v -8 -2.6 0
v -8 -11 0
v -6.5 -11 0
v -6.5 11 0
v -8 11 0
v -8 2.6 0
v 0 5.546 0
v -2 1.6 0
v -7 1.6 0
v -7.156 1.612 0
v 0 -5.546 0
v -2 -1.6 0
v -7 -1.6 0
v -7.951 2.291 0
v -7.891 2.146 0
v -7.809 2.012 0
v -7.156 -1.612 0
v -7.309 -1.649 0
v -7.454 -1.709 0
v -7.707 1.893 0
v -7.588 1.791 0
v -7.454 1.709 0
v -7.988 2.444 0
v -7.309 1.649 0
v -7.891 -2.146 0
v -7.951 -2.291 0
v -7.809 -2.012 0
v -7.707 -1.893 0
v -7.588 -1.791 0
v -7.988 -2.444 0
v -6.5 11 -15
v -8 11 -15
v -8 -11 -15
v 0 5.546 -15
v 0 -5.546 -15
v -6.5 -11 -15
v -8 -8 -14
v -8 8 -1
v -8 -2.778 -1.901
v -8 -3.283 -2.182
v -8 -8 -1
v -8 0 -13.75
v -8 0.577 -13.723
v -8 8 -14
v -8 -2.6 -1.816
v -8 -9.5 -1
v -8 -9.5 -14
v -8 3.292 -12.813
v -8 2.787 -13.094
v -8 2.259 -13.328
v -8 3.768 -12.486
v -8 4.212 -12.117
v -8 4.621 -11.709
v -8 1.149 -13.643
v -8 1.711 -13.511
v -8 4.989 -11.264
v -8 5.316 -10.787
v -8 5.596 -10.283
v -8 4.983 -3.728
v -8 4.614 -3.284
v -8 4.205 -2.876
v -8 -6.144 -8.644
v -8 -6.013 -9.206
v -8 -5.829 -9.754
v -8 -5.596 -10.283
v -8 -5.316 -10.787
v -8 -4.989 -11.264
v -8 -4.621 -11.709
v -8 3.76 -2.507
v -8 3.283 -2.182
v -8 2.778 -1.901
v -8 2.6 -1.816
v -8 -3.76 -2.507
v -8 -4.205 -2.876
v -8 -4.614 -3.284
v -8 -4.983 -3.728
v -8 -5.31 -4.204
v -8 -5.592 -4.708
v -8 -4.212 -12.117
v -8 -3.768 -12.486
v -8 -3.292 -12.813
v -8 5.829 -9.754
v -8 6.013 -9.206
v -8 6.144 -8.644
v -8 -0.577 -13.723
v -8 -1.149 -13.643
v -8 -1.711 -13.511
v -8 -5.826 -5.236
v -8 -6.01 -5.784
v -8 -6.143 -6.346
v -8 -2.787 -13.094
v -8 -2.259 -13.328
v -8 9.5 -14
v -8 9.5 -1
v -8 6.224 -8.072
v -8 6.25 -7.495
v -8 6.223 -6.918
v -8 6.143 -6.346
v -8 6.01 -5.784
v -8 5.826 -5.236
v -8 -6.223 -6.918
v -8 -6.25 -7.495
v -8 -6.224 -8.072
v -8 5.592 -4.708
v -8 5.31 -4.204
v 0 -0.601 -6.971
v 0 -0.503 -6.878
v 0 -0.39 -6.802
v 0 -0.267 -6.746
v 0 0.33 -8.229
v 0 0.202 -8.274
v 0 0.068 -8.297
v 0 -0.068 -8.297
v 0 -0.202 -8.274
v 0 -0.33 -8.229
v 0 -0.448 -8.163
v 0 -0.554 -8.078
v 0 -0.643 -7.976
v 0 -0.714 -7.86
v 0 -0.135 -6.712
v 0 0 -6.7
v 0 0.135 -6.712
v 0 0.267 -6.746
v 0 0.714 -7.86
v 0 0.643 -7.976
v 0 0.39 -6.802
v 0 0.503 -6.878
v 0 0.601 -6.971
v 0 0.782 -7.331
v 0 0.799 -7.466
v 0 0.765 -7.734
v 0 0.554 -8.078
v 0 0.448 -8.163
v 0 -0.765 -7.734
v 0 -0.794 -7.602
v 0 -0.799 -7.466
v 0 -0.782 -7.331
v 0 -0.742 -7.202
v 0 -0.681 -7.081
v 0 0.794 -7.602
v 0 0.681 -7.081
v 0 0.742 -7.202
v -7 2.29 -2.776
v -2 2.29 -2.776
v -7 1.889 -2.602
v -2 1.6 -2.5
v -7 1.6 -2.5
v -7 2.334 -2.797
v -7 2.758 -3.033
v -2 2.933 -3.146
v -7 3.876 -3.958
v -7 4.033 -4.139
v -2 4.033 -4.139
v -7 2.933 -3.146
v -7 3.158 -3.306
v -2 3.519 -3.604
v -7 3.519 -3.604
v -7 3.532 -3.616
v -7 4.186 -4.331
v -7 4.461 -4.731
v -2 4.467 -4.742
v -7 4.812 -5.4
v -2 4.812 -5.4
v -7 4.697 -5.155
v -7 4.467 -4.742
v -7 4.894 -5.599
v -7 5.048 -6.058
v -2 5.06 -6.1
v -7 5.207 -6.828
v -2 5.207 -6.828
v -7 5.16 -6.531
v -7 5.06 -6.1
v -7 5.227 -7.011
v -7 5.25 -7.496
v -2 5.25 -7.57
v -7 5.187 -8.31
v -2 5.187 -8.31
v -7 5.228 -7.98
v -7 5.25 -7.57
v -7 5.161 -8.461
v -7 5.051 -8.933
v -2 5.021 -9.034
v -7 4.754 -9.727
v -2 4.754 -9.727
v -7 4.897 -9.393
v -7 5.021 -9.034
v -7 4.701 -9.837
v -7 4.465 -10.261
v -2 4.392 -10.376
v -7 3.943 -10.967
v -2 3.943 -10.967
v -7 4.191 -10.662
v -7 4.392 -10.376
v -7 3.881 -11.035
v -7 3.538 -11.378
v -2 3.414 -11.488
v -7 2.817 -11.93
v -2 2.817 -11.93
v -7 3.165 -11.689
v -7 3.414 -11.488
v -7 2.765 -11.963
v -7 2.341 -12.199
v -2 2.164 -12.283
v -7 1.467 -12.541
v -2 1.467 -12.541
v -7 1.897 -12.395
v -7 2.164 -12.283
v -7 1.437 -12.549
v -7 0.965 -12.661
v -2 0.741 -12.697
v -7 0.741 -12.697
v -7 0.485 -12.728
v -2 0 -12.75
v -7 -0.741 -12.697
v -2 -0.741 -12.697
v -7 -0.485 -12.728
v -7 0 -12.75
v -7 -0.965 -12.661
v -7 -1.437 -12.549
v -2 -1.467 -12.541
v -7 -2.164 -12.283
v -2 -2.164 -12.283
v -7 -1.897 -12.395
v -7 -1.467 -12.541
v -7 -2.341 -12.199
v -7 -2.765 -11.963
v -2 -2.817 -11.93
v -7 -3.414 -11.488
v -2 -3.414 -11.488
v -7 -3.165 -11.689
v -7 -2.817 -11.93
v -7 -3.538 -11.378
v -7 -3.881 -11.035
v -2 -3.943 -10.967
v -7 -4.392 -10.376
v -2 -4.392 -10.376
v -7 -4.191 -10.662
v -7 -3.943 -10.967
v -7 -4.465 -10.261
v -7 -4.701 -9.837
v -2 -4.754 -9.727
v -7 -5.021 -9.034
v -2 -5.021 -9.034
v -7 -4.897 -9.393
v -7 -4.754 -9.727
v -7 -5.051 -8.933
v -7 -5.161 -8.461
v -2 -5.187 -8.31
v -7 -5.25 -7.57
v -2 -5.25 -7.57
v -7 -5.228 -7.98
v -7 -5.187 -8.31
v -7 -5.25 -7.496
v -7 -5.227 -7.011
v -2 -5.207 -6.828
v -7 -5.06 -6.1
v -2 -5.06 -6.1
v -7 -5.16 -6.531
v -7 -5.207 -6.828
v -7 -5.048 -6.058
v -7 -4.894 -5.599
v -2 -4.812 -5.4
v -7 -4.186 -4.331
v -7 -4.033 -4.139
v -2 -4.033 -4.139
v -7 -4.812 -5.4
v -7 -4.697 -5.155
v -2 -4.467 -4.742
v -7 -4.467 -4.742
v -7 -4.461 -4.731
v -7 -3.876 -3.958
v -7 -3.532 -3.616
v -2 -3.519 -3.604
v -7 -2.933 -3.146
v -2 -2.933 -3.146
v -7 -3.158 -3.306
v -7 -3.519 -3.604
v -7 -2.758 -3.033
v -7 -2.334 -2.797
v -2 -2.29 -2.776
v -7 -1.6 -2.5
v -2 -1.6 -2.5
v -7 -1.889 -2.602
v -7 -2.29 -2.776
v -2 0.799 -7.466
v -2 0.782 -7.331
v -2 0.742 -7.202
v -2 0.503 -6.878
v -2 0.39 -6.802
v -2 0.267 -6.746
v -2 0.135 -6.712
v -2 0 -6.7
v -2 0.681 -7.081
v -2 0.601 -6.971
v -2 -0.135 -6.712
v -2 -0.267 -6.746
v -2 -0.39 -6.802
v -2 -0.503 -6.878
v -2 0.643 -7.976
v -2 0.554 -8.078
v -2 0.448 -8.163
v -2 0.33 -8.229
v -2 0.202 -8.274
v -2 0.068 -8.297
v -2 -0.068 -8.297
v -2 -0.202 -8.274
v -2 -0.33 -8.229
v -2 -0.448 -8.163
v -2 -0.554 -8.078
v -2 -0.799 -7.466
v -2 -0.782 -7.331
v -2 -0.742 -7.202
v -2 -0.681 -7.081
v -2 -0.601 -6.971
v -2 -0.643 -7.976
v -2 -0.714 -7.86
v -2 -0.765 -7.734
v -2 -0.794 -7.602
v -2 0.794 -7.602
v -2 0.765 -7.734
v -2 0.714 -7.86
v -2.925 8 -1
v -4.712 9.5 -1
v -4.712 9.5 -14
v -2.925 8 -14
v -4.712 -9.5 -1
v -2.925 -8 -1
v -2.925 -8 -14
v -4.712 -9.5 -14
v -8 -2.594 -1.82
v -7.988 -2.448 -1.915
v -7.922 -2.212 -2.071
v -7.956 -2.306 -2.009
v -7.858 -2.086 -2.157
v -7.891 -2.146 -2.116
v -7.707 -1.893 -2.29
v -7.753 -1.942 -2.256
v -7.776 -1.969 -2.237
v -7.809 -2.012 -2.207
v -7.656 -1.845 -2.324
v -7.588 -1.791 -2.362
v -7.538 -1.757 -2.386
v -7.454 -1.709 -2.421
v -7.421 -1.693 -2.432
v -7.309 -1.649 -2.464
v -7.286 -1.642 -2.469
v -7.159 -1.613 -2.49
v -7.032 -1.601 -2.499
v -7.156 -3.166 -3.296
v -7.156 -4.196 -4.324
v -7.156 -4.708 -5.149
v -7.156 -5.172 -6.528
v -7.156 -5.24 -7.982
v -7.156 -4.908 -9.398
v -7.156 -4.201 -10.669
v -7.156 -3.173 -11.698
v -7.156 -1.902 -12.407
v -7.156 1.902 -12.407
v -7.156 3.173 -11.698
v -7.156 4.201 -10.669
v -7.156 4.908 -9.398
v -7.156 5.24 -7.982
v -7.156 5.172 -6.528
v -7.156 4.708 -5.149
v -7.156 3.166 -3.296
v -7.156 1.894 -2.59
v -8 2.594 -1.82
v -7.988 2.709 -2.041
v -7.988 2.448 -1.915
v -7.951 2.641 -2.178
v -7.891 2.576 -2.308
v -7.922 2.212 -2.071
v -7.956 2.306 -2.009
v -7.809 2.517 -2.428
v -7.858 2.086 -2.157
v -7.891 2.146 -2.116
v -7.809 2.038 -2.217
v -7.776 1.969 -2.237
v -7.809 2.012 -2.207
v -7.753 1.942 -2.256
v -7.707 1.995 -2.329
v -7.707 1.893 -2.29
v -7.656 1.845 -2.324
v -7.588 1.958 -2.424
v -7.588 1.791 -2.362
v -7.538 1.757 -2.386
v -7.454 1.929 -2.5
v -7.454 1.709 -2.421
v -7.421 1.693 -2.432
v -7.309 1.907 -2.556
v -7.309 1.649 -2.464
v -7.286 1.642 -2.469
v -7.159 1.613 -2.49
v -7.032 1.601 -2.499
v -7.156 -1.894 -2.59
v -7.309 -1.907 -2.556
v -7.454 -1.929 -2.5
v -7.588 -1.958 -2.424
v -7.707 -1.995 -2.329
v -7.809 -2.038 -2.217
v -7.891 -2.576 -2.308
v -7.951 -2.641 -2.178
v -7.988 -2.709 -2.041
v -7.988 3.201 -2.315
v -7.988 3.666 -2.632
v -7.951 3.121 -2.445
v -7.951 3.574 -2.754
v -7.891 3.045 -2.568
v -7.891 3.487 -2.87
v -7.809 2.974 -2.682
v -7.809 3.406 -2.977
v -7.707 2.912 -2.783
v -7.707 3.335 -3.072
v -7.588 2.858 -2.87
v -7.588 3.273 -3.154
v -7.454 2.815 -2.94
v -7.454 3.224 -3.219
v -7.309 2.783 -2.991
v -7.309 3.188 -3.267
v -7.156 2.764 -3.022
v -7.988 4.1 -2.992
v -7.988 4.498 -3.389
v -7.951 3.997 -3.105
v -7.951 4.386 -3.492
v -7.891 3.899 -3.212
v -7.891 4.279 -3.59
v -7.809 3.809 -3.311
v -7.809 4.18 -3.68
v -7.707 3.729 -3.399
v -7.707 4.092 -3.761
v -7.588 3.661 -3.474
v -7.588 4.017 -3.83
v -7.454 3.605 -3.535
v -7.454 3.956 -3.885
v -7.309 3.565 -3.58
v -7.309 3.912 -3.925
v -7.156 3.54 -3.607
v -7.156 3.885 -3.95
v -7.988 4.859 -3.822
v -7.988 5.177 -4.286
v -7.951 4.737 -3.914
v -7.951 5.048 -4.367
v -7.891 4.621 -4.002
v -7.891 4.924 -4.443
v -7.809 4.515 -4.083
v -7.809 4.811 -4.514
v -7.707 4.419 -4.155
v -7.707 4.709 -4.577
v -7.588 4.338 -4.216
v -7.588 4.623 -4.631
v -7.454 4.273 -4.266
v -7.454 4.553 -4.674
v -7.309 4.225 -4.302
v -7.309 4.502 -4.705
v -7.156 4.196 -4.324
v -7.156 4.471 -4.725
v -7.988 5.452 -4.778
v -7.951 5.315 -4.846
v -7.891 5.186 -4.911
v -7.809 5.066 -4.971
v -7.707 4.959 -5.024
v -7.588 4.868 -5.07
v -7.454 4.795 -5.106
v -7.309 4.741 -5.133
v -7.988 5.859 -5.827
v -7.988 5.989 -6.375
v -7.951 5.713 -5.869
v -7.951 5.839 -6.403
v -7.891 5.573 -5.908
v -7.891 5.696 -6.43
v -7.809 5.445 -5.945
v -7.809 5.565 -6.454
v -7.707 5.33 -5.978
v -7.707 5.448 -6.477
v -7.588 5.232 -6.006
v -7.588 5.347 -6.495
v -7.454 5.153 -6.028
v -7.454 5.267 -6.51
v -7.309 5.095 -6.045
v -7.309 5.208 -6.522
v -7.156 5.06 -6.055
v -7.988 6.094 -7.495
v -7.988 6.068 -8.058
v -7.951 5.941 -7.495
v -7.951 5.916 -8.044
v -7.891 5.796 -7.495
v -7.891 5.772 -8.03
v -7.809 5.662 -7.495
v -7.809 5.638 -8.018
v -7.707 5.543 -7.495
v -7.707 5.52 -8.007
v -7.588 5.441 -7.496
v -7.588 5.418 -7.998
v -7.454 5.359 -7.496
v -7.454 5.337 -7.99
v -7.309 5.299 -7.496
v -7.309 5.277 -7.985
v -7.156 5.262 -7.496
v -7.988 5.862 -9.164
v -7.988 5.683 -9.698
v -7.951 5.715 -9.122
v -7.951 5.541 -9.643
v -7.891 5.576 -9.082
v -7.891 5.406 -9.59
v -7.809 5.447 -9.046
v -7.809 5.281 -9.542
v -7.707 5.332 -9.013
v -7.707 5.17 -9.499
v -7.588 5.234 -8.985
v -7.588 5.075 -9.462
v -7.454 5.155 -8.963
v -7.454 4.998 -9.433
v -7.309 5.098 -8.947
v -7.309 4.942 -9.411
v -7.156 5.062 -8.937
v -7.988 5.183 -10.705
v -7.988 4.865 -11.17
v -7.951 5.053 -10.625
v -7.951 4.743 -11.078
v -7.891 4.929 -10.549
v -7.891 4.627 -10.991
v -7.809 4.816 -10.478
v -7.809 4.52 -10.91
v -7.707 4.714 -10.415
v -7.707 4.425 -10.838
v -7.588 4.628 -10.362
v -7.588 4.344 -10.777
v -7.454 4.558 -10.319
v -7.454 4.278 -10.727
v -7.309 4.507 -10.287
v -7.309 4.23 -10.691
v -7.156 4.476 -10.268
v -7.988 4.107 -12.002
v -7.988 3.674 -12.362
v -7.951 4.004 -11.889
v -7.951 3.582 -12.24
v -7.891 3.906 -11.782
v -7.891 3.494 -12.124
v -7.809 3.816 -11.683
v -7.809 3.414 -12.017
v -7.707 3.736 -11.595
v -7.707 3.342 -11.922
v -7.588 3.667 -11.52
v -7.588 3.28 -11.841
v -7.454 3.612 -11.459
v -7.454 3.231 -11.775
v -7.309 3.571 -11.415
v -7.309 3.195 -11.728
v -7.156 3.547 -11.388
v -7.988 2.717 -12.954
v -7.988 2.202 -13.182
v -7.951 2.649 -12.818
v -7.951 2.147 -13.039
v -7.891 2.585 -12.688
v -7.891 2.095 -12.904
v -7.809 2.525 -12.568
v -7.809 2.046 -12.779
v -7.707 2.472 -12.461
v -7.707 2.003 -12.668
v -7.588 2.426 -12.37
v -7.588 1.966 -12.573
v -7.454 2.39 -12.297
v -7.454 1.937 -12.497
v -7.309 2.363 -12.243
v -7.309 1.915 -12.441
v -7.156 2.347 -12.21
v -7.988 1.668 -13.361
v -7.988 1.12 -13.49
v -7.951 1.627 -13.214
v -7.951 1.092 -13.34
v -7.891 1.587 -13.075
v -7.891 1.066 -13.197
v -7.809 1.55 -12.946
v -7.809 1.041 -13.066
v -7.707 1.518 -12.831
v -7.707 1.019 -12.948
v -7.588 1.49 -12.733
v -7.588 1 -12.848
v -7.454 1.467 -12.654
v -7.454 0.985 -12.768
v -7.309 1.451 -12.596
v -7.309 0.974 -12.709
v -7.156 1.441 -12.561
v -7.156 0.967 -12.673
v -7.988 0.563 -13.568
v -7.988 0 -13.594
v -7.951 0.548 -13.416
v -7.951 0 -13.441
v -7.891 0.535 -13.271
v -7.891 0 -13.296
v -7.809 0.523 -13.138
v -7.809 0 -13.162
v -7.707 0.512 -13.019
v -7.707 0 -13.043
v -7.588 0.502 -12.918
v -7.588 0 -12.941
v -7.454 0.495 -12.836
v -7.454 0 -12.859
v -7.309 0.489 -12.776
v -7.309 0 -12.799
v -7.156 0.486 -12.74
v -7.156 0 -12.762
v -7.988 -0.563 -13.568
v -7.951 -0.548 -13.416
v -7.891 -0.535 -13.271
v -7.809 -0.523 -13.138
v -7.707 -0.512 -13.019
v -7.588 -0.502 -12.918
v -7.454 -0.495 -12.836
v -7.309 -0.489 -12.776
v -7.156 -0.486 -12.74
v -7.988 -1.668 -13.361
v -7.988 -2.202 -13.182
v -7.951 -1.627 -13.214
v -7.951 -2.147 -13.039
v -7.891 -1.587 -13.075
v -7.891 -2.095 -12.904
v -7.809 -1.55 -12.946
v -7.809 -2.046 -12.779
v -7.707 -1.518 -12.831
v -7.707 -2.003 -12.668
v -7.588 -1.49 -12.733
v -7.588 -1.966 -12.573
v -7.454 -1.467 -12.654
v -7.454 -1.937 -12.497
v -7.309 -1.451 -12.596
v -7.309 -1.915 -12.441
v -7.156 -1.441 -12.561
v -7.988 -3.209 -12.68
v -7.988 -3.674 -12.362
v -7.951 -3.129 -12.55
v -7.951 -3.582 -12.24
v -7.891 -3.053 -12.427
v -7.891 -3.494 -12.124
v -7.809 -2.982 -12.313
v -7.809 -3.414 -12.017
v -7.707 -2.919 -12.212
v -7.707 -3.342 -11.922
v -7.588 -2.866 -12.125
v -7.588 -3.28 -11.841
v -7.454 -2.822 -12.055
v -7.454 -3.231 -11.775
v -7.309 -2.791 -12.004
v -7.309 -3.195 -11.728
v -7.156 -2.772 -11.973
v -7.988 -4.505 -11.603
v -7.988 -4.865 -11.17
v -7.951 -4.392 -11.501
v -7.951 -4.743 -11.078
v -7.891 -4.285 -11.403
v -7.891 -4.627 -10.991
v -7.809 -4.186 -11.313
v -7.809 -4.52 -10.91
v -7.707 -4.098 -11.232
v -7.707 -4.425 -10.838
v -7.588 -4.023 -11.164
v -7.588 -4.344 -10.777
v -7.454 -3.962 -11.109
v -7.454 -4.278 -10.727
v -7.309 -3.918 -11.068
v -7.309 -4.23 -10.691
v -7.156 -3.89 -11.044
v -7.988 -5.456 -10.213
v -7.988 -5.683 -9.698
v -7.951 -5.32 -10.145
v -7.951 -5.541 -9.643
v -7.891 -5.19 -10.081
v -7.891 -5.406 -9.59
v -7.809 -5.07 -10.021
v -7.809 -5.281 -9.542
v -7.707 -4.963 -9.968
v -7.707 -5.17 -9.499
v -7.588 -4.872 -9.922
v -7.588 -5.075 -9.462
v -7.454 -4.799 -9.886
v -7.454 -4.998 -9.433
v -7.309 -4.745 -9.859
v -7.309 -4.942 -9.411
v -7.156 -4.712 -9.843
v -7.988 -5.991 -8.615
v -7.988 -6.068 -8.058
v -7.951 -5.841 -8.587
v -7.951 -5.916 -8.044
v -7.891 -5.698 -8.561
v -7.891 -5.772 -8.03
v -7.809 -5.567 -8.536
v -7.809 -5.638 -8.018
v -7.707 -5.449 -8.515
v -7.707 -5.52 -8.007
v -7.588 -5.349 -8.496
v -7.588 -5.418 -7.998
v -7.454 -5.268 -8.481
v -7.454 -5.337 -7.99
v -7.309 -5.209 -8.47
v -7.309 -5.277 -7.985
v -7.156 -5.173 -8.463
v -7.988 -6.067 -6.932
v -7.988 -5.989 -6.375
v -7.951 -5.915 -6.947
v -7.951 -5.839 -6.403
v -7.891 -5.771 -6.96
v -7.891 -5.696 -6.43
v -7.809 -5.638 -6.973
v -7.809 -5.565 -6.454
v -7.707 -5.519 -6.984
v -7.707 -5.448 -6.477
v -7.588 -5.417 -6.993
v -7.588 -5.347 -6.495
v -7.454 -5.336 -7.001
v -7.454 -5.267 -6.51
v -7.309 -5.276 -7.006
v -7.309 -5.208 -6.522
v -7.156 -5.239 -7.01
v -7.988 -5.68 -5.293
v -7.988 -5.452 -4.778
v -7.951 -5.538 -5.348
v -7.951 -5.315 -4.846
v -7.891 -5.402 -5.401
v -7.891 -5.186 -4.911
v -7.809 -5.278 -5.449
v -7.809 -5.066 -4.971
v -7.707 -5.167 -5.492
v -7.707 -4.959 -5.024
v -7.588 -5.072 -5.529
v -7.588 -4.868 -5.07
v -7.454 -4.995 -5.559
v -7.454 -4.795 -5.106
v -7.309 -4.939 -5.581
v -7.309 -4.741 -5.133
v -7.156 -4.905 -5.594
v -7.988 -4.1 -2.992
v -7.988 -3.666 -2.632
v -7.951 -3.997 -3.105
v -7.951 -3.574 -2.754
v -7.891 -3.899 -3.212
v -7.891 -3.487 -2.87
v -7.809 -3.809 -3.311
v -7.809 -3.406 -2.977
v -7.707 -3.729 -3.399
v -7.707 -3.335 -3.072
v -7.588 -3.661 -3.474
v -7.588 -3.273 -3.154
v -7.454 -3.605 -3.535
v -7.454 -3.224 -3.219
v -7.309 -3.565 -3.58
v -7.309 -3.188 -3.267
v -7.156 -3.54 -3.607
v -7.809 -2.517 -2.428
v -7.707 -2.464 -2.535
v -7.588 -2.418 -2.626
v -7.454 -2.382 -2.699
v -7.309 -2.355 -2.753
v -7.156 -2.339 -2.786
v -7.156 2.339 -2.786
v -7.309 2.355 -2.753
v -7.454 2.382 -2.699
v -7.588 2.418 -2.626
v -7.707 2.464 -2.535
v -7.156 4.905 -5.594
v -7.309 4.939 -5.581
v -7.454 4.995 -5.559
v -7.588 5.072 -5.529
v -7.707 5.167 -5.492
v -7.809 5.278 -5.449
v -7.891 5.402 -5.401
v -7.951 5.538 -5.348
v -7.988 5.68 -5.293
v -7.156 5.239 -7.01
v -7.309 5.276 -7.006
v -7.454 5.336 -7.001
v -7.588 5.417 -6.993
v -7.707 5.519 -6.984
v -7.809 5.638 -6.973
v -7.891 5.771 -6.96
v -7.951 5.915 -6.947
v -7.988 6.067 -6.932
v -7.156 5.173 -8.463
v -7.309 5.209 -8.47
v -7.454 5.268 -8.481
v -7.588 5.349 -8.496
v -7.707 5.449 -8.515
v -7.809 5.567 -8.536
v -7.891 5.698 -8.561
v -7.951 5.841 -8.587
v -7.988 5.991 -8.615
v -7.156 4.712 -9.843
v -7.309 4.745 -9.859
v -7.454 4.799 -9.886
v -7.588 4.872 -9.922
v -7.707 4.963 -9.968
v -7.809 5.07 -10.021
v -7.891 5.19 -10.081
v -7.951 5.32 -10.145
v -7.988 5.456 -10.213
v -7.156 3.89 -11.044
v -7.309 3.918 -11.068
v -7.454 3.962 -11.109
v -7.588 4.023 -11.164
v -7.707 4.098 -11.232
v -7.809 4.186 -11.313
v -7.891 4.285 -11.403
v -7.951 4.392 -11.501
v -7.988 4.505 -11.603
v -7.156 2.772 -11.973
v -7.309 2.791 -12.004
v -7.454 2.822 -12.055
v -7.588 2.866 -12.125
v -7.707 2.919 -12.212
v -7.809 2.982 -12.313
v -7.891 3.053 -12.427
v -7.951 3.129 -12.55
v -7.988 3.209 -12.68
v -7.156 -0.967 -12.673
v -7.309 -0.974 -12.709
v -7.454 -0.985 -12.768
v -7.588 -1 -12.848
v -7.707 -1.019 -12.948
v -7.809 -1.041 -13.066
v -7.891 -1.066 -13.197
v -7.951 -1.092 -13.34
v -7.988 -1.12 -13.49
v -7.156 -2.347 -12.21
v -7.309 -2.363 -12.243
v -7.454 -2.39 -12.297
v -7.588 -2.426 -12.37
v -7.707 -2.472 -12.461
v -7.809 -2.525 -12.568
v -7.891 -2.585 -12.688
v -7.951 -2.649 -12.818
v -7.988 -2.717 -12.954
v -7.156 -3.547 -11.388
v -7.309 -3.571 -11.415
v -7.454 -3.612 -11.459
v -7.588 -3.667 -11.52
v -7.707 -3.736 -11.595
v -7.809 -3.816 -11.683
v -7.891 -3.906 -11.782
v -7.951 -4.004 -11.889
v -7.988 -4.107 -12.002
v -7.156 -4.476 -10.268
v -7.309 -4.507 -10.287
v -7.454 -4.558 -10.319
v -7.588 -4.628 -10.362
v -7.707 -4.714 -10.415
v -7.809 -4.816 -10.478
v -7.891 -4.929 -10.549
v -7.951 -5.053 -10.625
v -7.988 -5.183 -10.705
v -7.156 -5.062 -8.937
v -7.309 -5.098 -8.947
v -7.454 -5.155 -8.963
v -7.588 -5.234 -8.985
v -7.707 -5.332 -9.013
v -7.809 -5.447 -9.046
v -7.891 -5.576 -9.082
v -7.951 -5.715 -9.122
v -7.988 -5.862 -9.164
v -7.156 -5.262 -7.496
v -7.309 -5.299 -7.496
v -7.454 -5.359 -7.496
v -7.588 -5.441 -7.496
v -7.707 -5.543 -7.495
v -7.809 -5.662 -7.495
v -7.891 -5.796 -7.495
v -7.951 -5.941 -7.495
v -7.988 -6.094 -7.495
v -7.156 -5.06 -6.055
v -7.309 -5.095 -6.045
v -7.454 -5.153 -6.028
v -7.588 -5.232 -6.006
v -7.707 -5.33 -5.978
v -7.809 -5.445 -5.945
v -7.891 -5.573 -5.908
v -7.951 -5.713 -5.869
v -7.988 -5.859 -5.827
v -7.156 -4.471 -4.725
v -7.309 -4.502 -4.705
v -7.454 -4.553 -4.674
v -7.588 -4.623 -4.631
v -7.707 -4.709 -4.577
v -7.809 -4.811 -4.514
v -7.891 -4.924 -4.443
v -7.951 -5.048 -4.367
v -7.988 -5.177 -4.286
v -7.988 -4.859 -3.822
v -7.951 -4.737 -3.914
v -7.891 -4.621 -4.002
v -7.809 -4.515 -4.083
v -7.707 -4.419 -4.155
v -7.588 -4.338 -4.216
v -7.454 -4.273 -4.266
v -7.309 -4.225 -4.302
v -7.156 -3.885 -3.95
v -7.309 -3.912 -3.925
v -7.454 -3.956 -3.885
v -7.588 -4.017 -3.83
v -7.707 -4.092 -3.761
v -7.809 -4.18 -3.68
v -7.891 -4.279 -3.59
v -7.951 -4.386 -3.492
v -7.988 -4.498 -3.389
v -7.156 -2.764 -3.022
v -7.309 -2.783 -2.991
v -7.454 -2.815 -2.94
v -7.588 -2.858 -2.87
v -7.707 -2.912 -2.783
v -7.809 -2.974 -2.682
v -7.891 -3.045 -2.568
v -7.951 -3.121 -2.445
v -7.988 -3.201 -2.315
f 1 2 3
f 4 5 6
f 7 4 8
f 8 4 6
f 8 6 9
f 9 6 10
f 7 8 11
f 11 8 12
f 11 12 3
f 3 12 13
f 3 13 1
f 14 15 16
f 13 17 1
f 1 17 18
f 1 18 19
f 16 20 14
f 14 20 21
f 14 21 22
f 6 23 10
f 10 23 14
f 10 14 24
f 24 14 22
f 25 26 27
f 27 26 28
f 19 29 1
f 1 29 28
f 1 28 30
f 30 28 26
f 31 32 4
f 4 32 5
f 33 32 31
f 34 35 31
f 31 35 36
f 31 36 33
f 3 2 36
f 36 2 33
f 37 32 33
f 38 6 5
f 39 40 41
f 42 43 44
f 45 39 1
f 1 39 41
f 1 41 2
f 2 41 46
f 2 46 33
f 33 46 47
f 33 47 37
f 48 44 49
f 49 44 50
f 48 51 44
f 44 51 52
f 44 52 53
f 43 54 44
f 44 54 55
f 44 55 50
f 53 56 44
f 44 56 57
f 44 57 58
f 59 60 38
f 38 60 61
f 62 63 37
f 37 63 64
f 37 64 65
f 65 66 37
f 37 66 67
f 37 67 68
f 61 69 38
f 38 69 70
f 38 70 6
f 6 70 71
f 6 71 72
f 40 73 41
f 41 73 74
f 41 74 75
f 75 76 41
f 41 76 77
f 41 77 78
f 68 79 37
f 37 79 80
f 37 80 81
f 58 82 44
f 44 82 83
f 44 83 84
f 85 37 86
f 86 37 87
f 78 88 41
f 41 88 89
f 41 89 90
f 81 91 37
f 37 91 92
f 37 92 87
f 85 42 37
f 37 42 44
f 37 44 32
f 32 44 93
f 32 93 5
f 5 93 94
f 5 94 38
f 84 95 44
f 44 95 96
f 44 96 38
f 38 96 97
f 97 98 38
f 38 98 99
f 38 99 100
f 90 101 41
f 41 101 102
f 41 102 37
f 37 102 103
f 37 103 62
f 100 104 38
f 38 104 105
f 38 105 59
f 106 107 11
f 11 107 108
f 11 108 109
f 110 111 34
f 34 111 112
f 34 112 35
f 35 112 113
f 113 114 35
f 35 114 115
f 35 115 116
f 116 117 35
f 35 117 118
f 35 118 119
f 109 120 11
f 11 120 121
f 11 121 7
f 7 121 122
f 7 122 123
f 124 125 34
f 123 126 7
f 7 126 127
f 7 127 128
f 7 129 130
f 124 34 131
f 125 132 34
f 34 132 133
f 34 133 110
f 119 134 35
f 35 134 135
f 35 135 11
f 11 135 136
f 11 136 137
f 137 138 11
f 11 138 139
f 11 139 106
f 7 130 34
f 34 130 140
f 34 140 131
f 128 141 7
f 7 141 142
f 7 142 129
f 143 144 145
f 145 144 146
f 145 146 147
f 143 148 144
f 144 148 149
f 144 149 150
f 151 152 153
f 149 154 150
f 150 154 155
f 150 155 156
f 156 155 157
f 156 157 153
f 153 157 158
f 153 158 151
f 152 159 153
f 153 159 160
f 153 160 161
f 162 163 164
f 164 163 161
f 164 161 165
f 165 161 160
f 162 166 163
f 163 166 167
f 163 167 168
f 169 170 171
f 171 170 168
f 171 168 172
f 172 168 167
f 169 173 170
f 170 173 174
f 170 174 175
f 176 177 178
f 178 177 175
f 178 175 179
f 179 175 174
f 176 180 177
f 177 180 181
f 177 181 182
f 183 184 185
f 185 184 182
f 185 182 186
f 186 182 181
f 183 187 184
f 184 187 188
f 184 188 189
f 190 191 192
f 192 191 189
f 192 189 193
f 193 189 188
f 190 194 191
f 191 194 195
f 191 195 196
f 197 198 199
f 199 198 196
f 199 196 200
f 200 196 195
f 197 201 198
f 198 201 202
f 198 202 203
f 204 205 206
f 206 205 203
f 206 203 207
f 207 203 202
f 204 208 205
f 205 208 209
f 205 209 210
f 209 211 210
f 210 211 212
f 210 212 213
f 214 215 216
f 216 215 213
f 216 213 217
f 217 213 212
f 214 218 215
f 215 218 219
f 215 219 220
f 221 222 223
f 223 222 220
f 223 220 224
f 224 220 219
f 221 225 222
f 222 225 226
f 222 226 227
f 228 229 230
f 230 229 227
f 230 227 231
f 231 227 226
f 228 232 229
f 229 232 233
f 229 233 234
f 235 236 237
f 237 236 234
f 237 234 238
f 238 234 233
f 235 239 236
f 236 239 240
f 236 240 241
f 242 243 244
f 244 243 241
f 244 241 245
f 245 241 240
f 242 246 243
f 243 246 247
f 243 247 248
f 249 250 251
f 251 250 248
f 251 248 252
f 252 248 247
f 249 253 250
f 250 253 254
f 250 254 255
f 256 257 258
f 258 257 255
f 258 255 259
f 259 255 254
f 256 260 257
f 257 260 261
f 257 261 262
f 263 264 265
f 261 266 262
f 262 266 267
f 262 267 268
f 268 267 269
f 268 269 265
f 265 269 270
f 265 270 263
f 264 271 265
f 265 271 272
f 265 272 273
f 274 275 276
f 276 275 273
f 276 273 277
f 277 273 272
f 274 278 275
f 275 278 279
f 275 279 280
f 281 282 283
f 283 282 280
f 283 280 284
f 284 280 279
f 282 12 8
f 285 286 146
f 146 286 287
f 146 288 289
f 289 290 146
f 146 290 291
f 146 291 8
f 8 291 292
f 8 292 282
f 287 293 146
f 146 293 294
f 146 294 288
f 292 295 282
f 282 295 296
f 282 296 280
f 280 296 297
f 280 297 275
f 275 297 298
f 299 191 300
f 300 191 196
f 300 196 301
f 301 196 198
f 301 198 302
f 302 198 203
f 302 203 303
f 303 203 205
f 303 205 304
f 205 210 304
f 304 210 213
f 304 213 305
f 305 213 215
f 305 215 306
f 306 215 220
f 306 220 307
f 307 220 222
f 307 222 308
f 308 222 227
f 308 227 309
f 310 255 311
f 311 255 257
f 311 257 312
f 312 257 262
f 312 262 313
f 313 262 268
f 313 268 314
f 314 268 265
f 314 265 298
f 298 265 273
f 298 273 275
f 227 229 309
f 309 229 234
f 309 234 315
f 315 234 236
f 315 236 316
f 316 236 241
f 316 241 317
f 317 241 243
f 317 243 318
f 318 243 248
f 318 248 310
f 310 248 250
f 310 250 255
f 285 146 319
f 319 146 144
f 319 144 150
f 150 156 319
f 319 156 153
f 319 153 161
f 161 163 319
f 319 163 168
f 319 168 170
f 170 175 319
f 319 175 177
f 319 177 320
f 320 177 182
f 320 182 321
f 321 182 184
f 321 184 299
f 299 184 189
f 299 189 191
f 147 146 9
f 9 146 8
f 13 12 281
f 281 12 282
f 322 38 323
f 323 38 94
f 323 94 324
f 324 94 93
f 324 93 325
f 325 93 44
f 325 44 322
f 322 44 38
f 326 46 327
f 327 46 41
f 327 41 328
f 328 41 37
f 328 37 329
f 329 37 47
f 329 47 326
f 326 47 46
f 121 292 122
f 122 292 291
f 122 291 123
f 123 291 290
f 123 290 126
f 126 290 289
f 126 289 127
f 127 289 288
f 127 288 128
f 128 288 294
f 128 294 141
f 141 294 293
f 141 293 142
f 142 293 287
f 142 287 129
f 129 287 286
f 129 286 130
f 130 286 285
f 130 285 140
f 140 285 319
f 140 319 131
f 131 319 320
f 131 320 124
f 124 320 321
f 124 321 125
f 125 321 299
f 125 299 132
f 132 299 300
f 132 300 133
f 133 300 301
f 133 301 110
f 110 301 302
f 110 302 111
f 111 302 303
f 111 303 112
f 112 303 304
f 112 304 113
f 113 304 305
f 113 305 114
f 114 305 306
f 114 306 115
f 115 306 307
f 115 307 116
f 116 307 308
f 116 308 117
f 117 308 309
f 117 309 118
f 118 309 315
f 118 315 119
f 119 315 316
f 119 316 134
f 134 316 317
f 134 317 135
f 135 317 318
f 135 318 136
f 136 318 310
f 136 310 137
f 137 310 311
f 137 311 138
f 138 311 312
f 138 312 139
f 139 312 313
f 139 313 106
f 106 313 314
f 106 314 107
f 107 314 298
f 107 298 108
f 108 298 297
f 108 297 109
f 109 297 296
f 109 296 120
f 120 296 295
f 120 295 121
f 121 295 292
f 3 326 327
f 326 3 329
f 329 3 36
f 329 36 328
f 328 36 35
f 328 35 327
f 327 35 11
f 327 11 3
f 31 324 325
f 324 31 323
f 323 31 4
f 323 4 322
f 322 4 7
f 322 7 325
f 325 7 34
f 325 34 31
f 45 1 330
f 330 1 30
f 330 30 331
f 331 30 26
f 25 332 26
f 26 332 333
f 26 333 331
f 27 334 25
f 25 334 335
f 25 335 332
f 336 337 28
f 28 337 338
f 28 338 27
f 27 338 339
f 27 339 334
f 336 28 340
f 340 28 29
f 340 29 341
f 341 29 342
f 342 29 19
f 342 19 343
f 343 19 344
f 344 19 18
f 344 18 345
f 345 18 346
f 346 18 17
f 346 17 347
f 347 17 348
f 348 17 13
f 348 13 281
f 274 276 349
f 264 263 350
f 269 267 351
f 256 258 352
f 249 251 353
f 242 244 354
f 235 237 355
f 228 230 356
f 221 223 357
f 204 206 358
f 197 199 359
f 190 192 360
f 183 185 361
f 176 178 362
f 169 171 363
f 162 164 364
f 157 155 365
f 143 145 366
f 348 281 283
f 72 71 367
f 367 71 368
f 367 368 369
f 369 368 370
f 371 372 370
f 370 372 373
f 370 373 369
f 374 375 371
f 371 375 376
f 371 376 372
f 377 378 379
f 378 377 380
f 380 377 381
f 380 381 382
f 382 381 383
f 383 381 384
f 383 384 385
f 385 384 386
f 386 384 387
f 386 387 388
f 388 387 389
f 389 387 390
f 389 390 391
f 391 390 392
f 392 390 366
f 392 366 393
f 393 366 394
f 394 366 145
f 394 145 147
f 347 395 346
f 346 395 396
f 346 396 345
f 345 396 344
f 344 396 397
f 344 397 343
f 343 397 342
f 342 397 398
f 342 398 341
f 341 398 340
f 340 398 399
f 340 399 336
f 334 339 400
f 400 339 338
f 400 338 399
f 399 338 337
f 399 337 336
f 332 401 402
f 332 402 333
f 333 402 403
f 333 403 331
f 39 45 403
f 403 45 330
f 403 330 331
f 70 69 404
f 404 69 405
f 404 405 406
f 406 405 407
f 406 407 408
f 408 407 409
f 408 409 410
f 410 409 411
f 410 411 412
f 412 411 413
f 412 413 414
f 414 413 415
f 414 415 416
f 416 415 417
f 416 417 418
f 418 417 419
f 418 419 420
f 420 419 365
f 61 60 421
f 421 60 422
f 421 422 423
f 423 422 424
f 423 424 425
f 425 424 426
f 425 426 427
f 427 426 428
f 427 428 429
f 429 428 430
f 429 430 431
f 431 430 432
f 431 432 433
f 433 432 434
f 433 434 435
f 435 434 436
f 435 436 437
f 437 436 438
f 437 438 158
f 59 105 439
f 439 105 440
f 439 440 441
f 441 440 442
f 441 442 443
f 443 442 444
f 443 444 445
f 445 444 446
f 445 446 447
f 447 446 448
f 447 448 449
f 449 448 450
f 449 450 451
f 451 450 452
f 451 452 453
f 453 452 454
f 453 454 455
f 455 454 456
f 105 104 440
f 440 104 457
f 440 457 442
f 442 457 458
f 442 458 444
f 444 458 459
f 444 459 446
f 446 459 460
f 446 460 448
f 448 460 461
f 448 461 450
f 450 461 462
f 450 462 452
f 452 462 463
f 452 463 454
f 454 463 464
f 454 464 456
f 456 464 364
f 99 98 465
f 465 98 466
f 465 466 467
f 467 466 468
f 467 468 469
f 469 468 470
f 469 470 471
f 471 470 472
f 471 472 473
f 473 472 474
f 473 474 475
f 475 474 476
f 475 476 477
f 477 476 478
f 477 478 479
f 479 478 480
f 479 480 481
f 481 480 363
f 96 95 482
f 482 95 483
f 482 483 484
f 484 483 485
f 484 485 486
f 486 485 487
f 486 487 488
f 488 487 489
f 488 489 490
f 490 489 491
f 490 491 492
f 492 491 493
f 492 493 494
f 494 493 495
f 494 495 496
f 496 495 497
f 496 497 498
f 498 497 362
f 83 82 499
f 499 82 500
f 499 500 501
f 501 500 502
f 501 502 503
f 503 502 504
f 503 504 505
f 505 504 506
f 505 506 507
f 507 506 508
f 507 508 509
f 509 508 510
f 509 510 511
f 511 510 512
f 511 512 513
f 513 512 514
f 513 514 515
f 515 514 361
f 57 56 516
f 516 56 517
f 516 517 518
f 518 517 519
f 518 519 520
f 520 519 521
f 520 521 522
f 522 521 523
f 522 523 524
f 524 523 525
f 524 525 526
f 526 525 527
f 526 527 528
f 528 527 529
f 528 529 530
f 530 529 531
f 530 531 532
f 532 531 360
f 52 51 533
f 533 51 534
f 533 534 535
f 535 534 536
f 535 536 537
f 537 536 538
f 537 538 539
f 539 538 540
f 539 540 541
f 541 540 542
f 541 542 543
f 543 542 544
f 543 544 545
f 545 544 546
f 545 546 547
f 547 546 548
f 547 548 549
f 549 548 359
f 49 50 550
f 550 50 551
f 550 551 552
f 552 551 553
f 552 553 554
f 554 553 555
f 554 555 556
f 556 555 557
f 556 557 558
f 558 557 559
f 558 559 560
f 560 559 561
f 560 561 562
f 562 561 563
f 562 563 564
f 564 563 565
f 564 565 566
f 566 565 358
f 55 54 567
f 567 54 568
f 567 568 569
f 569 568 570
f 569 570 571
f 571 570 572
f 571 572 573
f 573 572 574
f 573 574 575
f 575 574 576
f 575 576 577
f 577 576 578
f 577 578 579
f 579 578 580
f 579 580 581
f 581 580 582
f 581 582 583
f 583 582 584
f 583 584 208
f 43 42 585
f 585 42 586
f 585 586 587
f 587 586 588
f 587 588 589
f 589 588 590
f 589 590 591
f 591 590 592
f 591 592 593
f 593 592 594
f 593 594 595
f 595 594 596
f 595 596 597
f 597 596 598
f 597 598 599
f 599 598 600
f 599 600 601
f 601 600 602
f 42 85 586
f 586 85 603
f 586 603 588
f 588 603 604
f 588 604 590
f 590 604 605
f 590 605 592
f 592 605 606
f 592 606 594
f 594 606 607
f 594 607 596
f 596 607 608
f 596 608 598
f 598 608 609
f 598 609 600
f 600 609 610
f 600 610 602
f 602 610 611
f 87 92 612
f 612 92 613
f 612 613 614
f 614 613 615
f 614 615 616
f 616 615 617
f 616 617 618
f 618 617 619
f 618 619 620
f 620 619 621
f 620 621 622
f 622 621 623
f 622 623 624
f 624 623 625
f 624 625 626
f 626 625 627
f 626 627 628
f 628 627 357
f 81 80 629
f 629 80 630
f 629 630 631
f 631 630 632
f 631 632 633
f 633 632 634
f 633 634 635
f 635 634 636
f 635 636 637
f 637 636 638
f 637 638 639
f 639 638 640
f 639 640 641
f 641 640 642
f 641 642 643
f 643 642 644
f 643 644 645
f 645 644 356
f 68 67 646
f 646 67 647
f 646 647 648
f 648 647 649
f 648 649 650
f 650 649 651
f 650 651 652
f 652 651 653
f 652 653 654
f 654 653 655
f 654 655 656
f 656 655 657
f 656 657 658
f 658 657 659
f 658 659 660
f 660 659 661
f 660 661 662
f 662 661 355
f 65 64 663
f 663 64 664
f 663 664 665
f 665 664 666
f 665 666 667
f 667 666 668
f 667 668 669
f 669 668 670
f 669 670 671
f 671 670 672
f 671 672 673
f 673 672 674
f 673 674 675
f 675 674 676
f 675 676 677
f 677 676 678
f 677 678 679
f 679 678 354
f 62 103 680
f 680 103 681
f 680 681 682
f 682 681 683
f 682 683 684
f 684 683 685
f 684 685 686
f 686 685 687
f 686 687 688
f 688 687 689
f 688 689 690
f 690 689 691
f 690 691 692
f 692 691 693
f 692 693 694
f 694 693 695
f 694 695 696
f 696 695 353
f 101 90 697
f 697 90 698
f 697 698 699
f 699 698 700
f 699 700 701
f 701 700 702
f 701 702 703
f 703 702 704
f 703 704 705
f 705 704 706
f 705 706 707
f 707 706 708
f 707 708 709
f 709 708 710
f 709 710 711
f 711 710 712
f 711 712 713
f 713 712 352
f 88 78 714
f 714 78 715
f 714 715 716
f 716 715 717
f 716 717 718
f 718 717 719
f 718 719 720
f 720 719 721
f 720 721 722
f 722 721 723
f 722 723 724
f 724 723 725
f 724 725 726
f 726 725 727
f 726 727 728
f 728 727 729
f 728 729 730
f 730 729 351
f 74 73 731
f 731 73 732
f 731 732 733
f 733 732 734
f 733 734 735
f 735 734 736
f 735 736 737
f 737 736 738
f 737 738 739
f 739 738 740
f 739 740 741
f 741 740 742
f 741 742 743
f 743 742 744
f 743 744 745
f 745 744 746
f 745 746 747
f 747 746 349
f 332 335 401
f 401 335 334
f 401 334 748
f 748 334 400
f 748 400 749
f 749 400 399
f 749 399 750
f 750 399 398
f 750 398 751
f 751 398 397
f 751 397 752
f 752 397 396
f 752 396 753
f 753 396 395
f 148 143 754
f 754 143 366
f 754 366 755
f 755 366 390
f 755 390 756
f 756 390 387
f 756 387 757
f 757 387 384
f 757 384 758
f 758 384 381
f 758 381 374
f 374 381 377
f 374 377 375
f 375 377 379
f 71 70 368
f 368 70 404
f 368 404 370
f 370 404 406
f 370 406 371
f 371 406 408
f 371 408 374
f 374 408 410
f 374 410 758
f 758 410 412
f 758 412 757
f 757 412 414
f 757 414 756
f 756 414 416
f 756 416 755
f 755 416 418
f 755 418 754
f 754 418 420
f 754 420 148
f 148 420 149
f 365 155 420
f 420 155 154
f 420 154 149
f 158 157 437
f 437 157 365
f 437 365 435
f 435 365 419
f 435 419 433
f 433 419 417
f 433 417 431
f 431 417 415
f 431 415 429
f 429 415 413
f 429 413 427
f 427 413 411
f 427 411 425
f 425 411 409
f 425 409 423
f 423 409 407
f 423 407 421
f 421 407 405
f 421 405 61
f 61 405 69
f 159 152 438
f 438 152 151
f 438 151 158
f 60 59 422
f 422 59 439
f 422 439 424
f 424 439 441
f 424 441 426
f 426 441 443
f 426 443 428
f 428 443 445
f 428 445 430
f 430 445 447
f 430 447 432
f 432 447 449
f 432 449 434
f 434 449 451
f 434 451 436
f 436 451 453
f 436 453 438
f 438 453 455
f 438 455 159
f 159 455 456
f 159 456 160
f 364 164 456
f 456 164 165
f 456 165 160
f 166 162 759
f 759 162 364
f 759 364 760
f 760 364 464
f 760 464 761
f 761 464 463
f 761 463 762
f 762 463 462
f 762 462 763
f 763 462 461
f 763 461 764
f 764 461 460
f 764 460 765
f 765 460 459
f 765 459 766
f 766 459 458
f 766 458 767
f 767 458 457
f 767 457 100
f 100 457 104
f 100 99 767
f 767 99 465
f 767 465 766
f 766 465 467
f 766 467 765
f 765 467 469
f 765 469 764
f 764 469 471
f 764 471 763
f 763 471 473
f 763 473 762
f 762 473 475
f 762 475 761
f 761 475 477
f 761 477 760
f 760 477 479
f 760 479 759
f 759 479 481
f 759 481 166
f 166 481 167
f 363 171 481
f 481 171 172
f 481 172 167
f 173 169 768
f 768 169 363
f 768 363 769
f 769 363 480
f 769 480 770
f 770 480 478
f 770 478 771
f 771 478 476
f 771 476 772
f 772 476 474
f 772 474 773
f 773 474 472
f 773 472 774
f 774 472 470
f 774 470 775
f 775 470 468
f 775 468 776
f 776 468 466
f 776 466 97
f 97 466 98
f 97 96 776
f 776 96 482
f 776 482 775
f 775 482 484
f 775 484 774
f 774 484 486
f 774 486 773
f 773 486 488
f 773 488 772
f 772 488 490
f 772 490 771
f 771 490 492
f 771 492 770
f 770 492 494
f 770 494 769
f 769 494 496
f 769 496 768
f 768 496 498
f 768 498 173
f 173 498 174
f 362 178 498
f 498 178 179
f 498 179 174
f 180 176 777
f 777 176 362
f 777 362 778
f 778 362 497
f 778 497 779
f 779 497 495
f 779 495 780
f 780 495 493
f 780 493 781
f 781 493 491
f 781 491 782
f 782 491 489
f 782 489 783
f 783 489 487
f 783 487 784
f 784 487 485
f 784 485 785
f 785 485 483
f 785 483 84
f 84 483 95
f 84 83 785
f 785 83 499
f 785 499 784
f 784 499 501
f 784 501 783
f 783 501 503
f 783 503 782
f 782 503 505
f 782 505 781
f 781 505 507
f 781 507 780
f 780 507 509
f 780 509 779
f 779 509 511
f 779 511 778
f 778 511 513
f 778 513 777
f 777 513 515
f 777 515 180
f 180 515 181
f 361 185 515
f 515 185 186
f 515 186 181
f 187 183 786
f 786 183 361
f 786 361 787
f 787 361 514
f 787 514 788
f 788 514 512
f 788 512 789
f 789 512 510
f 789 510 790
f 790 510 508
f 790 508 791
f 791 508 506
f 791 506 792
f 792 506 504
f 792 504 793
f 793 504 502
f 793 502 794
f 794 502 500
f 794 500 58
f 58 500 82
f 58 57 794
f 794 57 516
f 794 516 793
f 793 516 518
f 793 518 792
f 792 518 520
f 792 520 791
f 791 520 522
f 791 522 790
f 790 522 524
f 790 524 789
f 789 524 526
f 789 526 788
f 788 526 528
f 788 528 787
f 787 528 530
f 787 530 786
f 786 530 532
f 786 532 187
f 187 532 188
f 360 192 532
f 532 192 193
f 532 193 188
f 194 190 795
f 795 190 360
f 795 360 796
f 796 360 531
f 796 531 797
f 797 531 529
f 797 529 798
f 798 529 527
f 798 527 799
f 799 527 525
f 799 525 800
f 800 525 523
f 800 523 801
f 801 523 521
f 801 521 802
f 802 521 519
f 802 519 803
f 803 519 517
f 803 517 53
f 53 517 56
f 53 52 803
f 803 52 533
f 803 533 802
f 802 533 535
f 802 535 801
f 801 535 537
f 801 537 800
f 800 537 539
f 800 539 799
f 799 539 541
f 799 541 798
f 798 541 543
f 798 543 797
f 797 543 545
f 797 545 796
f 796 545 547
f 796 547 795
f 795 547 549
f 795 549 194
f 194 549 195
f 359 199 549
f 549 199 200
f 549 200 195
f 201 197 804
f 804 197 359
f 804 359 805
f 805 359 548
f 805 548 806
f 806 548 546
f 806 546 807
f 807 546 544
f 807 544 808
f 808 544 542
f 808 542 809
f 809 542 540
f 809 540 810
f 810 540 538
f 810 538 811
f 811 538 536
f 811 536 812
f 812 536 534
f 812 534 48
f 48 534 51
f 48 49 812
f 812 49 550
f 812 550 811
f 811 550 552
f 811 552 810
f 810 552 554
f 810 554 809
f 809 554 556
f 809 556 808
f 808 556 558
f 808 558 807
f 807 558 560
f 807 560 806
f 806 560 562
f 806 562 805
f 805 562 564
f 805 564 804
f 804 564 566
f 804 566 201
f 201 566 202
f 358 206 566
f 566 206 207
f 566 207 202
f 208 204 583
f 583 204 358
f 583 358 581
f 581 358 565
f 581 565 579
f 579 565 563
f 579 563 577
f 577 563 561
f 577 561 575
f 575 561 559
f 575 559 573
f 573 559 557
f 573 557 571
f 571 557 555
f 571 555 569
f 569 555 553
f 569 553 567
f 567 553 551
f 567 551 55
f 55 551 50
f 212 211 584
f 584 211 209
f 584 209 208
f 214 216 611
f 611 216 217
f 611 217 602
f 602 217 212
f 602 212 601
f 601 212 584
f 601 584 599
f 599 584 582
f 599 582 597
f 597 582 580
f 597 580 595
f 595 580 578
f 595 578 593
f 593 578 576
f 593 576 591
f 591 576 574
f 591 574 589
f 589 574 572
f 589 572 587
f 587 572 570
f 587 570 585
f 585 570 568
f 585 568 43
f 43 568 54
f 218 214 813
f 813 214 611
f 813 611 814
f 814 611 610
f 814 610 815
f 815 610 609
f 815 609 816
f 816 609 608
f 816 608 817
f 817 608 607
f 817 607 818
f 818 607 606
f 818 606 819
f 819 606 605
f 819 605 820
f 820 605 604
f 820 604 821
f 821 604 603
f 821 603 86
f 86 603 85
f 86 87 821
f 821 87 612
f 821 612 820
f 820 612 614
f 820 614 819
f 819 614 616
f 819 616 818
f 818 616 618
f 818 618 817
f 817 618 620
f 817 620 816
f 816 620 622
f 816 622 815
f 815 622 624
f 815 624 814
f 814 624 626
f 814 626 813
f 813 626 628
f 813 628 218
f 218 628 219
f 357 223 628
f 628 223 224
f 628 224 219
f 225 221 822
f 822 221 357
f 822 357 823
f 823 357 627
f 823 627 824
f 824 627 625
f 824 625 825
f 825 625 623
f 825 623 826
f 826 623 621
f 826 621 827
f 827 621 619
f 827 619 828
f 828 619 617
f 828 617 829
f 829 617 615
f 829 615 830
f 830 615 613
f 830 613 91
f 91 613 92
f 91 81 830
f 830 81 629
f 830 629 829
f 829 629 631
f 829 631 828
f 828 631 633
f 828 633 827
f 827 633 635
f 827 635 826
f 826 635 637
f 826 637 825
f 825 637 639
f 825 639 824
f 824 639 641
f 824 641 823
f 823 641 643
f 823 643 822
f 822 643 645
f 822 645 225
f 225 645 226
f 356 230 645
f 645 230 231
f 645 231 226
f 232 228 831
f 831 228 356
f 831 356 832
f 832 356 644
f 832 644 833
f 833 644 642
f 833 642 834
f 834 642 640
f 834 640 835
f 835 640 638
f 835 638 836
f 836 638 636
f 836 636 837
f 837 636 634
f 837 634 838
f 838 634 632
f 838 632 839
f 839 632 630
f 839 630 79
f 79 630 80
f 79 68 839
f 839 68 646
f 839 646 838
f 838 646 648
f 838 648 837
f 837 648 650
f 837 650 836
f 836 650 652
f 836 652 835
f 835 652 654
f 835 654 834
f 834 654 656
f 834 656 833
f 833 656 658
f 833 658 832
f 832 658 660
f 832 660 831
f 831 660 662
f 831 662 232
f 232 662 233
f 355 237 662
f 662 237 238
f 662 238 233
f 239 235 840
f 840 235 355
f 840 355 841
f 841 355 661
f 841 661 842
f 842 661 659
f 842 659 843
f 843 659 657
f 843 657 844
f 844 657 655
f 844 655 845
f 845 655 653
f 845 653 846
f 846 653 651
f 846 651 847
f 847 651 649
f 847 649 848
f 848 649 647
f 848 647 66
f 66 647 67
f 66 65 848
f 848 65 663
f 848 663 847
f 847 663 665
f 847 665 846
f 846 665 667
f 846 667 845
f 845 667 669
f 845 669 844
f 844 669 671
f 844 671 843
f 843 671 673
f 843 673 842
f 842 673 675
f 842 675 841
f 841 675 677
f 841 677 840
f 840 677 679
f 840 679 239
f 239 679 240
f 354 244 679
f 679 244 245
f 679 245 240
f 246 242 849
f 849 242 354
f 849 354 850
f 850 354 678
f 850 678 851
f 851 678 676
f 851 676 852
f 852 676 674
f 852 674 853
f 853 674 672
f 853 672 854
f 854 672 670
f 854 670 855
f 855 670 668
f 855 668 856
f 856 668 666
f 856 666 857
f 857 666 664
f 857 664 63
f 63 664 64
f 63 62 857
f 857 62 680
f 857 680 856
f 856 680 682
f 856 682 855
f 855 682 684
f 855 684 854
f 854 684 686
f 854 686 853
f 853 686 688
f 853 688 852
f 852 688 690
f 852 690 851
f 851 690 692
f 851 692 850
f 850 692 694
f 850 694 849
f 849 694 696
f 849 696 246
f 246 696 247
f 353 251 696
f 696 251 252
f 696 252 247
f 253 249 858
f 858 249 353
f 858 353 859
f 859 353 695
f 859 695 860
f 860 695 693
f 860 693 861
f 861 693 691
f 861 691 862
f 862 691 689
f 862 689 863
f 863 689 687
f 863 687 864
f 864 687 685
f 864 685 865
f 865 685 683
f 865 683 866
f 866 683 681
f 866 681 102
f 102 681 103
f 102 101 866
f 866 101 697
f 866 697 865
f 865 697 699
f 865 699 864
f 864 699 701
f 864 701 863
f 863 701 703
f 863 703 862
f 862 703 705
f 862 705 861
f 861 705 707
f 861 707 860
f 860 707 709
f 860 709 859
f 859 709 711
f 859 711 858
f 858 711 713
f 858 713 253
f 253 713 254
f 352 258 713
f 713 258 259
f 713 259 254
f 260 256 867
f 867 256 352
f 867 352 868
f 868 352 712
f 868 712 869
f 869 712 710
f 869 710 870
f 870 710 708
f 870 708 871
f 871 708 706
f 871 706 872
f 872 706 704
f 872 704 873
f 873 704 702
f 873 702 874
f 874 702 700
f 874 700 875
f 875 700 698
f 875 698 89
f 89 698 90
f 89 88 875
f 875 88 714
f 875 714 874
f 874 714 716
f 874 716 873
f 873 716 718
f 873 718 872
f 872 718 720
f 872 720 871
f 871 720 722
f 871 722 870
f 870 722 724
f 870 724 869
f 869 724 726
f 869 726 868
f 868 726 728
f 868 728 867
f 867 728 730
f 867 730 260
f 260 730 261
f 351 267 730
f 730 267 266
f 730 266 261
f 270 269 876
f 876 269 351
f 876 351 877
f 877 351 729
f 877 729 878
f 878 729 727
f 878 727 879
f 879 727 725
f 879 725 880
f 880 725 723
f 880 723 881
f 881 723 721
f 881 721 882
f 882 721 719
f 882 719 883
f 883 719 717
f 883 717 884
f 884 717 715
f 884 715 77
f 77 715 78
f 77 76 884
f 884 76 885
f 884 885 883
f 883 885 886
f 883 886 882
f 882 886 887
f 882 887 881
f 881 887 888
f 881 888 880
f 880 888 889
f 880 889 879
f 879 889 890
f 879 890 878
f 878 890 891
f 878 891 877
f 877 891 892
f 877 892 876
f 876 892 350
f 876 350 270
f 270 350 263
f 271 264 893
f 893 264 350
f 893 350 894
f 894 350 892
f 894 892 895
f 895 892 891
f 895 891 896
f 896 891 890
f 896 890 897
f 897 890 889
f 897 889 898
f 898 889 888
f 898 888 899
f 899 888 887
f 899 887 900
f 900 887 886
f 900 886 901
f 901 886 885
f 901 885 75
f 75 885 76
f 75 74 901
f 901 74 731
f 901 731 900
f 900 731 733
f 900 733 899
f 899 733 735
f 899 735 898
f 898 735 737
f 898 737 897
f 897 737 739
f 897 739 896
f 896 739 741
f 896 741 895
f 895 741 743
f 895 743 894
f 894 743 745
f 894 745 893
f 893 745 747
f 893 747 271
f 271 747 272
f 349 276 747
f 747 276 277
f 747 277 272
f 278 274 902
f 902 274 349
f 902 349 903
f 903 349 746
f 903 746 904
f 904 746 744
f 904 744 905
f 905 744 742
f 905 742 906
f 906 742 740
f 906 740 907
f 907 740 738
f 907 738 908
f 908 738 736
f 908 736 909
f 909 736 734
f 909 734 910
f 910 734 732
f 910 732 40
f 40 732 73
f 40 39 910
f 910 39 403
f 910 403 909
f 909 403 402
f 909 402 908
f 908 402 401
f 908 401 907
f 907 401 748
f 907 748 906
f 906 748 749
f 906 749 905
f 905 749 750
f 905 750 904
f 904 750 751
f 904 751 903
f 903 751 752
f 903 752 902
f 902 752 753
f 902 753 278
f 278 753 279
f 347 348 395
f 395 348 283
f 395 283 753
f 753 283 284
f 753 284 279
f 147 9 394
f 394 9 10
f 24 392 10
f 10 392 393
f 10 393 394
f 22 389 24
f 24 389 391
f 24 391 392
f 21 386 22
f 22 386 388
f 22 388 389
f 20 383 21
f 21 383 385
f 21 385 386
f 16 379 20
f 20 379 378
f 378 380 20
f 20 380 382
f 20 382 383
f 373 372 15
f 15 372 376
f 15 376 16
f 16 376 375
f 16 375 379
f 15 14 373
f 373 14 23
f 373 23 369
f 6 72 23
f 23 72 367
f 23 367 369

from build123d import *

# Parameters (mm, degrees)
SKETCH1_W               = 15
SKETCH1_H               = 22
BOSS_EXTRUDE1_DEPTH     = 8
SKETCH2_R               = 5.25
CUT_EXTRUDE1_DEPTH      = 6
CUT_EXTRUDE2_REACH      = 24.694
CUT_EXTRUDE2_END_RADIUS = 5.25
SKETCH3_W               = 6
SKETCH3_H               = 3.2
SKETCH4_W               = 13
SKETCH4_H               = 1.5
CUT_EXTRUDE3_DEPTH      = 10
SKETCH5_R               = 0.8
CUT_EXTRUDE4_DEPTH      = 20.544820286
CUT_EXTRUDE5_DEPTH      = 21.248456731
FILLET1_R               = 1


with BuildPart() as part:
    # Sketch1 → Boss-Extrude1 (new body)
    with BuildSketch(Plane(origin=(0, 0, -7.5), x_dir=(0, 0, 1), z_dir=(-1, 0, 0))):
        Rectangle(SKETCH1_W, SKETCH1_H)
    extrude(amount=BOSS_EXTRUDE1_DEPTH)

    # Sketch2 → Cut-Extrude1 (cut)
    with BuildSketch(Plane.ZY.offset(8)):
        with Locations((-7.5, 0)):
            Circle(SKETCH2_R)
    extrude(amount=-CUT_EXTRUDE1_DEPTH, mode=Mode.SUBTRACT)

    # Cut-Extrude2: up to this cylinder (the profile starts outside it)
    cut_extrude2_end = Plane(origin=(-5, 0, -7.5), z_dir=(-1, 0, 0)) * Cylinder(CUT_EXTRUDE2_END_RADIUS, 60.888, mode=Mode.PRIVATE)
    # Sketch3 → Cut-Extrude2 (cut, up to the surface)
    with BuildSketch(Plane(origin=(5, 0, 0), x_dir=(1, 0, 0), z_dir=(0, 0, 1)), mode=Mode.PRIVATE) as cut_extrude2_sk1:
        with Locations((-10, 0)):
            Rectangle(SKETCH3_W, SKETCH3_H)
    cut_extrude2_tool1 = extrude(cut_extrude2_sk1.sketch, amount=-CUT_EXTRUDE2_REACH, mode=Mode.PRIVATE) - cut_extrude2_end
    add(cut_extrude2_tool1.solids().sort_by_distance((-5, 0, 0))[0], mode=Mode.SUBTRACT)

    # Sketch4 → Cut-Extrude3 (cut)
    with BuildSketch(Plane(origin=(0, 0, 0), x_dir=(0, 0, -1), z_dir=(1, 0, 0))):
        with Locations((7.5, 8.75)):
            Rectangle(SKETCH4_W, SKETCH4_H)
        with Locations((7.5, -8.75)):
            Rectangle(SKETCH4_W, SKETCH4_H)
    extrude(amount=-CUT_EXTRUDE3_DEPTH, mode=Mode.SUBTRACT)

    # Sketch5 → Cut-Extrude4 (cut, through all)
    with BuildSketch(Plane.ZY.offset(2)):
        with Locations((-7.5, 0)):
            Circle(SKETCH5_R)
    extrude(amount=-CUT_EXTRUDE4_DEPTH, mode=Mode.SUBTRACT)

    # Sketch6 → Cut-Extrude5 (cut, through all)
    with BuildSketch(Plane.XY):
        Polygon((0, -11), (-6.5, -11), (0, -5.545852397), align=None)
        Polygon((0, 11), (-6.5, 11), (0, 5.545852397), align=None)
    extrude(amount=-CUT_EXTRUDE5_DEPTH, mode=Mode.SUBTRACT)

    # Fillet1
    fillet1_edges = [part.edges().sort_by_distance(p)[0] for p in [
        (-8, 0, -12.75),
        (-8, 1.6, -1.249875003),
        (-8, -1.6, -1.249875003),
    ]]
    fillet(fillet1_edges, radius=FILLET1_R)


solid = part.part
